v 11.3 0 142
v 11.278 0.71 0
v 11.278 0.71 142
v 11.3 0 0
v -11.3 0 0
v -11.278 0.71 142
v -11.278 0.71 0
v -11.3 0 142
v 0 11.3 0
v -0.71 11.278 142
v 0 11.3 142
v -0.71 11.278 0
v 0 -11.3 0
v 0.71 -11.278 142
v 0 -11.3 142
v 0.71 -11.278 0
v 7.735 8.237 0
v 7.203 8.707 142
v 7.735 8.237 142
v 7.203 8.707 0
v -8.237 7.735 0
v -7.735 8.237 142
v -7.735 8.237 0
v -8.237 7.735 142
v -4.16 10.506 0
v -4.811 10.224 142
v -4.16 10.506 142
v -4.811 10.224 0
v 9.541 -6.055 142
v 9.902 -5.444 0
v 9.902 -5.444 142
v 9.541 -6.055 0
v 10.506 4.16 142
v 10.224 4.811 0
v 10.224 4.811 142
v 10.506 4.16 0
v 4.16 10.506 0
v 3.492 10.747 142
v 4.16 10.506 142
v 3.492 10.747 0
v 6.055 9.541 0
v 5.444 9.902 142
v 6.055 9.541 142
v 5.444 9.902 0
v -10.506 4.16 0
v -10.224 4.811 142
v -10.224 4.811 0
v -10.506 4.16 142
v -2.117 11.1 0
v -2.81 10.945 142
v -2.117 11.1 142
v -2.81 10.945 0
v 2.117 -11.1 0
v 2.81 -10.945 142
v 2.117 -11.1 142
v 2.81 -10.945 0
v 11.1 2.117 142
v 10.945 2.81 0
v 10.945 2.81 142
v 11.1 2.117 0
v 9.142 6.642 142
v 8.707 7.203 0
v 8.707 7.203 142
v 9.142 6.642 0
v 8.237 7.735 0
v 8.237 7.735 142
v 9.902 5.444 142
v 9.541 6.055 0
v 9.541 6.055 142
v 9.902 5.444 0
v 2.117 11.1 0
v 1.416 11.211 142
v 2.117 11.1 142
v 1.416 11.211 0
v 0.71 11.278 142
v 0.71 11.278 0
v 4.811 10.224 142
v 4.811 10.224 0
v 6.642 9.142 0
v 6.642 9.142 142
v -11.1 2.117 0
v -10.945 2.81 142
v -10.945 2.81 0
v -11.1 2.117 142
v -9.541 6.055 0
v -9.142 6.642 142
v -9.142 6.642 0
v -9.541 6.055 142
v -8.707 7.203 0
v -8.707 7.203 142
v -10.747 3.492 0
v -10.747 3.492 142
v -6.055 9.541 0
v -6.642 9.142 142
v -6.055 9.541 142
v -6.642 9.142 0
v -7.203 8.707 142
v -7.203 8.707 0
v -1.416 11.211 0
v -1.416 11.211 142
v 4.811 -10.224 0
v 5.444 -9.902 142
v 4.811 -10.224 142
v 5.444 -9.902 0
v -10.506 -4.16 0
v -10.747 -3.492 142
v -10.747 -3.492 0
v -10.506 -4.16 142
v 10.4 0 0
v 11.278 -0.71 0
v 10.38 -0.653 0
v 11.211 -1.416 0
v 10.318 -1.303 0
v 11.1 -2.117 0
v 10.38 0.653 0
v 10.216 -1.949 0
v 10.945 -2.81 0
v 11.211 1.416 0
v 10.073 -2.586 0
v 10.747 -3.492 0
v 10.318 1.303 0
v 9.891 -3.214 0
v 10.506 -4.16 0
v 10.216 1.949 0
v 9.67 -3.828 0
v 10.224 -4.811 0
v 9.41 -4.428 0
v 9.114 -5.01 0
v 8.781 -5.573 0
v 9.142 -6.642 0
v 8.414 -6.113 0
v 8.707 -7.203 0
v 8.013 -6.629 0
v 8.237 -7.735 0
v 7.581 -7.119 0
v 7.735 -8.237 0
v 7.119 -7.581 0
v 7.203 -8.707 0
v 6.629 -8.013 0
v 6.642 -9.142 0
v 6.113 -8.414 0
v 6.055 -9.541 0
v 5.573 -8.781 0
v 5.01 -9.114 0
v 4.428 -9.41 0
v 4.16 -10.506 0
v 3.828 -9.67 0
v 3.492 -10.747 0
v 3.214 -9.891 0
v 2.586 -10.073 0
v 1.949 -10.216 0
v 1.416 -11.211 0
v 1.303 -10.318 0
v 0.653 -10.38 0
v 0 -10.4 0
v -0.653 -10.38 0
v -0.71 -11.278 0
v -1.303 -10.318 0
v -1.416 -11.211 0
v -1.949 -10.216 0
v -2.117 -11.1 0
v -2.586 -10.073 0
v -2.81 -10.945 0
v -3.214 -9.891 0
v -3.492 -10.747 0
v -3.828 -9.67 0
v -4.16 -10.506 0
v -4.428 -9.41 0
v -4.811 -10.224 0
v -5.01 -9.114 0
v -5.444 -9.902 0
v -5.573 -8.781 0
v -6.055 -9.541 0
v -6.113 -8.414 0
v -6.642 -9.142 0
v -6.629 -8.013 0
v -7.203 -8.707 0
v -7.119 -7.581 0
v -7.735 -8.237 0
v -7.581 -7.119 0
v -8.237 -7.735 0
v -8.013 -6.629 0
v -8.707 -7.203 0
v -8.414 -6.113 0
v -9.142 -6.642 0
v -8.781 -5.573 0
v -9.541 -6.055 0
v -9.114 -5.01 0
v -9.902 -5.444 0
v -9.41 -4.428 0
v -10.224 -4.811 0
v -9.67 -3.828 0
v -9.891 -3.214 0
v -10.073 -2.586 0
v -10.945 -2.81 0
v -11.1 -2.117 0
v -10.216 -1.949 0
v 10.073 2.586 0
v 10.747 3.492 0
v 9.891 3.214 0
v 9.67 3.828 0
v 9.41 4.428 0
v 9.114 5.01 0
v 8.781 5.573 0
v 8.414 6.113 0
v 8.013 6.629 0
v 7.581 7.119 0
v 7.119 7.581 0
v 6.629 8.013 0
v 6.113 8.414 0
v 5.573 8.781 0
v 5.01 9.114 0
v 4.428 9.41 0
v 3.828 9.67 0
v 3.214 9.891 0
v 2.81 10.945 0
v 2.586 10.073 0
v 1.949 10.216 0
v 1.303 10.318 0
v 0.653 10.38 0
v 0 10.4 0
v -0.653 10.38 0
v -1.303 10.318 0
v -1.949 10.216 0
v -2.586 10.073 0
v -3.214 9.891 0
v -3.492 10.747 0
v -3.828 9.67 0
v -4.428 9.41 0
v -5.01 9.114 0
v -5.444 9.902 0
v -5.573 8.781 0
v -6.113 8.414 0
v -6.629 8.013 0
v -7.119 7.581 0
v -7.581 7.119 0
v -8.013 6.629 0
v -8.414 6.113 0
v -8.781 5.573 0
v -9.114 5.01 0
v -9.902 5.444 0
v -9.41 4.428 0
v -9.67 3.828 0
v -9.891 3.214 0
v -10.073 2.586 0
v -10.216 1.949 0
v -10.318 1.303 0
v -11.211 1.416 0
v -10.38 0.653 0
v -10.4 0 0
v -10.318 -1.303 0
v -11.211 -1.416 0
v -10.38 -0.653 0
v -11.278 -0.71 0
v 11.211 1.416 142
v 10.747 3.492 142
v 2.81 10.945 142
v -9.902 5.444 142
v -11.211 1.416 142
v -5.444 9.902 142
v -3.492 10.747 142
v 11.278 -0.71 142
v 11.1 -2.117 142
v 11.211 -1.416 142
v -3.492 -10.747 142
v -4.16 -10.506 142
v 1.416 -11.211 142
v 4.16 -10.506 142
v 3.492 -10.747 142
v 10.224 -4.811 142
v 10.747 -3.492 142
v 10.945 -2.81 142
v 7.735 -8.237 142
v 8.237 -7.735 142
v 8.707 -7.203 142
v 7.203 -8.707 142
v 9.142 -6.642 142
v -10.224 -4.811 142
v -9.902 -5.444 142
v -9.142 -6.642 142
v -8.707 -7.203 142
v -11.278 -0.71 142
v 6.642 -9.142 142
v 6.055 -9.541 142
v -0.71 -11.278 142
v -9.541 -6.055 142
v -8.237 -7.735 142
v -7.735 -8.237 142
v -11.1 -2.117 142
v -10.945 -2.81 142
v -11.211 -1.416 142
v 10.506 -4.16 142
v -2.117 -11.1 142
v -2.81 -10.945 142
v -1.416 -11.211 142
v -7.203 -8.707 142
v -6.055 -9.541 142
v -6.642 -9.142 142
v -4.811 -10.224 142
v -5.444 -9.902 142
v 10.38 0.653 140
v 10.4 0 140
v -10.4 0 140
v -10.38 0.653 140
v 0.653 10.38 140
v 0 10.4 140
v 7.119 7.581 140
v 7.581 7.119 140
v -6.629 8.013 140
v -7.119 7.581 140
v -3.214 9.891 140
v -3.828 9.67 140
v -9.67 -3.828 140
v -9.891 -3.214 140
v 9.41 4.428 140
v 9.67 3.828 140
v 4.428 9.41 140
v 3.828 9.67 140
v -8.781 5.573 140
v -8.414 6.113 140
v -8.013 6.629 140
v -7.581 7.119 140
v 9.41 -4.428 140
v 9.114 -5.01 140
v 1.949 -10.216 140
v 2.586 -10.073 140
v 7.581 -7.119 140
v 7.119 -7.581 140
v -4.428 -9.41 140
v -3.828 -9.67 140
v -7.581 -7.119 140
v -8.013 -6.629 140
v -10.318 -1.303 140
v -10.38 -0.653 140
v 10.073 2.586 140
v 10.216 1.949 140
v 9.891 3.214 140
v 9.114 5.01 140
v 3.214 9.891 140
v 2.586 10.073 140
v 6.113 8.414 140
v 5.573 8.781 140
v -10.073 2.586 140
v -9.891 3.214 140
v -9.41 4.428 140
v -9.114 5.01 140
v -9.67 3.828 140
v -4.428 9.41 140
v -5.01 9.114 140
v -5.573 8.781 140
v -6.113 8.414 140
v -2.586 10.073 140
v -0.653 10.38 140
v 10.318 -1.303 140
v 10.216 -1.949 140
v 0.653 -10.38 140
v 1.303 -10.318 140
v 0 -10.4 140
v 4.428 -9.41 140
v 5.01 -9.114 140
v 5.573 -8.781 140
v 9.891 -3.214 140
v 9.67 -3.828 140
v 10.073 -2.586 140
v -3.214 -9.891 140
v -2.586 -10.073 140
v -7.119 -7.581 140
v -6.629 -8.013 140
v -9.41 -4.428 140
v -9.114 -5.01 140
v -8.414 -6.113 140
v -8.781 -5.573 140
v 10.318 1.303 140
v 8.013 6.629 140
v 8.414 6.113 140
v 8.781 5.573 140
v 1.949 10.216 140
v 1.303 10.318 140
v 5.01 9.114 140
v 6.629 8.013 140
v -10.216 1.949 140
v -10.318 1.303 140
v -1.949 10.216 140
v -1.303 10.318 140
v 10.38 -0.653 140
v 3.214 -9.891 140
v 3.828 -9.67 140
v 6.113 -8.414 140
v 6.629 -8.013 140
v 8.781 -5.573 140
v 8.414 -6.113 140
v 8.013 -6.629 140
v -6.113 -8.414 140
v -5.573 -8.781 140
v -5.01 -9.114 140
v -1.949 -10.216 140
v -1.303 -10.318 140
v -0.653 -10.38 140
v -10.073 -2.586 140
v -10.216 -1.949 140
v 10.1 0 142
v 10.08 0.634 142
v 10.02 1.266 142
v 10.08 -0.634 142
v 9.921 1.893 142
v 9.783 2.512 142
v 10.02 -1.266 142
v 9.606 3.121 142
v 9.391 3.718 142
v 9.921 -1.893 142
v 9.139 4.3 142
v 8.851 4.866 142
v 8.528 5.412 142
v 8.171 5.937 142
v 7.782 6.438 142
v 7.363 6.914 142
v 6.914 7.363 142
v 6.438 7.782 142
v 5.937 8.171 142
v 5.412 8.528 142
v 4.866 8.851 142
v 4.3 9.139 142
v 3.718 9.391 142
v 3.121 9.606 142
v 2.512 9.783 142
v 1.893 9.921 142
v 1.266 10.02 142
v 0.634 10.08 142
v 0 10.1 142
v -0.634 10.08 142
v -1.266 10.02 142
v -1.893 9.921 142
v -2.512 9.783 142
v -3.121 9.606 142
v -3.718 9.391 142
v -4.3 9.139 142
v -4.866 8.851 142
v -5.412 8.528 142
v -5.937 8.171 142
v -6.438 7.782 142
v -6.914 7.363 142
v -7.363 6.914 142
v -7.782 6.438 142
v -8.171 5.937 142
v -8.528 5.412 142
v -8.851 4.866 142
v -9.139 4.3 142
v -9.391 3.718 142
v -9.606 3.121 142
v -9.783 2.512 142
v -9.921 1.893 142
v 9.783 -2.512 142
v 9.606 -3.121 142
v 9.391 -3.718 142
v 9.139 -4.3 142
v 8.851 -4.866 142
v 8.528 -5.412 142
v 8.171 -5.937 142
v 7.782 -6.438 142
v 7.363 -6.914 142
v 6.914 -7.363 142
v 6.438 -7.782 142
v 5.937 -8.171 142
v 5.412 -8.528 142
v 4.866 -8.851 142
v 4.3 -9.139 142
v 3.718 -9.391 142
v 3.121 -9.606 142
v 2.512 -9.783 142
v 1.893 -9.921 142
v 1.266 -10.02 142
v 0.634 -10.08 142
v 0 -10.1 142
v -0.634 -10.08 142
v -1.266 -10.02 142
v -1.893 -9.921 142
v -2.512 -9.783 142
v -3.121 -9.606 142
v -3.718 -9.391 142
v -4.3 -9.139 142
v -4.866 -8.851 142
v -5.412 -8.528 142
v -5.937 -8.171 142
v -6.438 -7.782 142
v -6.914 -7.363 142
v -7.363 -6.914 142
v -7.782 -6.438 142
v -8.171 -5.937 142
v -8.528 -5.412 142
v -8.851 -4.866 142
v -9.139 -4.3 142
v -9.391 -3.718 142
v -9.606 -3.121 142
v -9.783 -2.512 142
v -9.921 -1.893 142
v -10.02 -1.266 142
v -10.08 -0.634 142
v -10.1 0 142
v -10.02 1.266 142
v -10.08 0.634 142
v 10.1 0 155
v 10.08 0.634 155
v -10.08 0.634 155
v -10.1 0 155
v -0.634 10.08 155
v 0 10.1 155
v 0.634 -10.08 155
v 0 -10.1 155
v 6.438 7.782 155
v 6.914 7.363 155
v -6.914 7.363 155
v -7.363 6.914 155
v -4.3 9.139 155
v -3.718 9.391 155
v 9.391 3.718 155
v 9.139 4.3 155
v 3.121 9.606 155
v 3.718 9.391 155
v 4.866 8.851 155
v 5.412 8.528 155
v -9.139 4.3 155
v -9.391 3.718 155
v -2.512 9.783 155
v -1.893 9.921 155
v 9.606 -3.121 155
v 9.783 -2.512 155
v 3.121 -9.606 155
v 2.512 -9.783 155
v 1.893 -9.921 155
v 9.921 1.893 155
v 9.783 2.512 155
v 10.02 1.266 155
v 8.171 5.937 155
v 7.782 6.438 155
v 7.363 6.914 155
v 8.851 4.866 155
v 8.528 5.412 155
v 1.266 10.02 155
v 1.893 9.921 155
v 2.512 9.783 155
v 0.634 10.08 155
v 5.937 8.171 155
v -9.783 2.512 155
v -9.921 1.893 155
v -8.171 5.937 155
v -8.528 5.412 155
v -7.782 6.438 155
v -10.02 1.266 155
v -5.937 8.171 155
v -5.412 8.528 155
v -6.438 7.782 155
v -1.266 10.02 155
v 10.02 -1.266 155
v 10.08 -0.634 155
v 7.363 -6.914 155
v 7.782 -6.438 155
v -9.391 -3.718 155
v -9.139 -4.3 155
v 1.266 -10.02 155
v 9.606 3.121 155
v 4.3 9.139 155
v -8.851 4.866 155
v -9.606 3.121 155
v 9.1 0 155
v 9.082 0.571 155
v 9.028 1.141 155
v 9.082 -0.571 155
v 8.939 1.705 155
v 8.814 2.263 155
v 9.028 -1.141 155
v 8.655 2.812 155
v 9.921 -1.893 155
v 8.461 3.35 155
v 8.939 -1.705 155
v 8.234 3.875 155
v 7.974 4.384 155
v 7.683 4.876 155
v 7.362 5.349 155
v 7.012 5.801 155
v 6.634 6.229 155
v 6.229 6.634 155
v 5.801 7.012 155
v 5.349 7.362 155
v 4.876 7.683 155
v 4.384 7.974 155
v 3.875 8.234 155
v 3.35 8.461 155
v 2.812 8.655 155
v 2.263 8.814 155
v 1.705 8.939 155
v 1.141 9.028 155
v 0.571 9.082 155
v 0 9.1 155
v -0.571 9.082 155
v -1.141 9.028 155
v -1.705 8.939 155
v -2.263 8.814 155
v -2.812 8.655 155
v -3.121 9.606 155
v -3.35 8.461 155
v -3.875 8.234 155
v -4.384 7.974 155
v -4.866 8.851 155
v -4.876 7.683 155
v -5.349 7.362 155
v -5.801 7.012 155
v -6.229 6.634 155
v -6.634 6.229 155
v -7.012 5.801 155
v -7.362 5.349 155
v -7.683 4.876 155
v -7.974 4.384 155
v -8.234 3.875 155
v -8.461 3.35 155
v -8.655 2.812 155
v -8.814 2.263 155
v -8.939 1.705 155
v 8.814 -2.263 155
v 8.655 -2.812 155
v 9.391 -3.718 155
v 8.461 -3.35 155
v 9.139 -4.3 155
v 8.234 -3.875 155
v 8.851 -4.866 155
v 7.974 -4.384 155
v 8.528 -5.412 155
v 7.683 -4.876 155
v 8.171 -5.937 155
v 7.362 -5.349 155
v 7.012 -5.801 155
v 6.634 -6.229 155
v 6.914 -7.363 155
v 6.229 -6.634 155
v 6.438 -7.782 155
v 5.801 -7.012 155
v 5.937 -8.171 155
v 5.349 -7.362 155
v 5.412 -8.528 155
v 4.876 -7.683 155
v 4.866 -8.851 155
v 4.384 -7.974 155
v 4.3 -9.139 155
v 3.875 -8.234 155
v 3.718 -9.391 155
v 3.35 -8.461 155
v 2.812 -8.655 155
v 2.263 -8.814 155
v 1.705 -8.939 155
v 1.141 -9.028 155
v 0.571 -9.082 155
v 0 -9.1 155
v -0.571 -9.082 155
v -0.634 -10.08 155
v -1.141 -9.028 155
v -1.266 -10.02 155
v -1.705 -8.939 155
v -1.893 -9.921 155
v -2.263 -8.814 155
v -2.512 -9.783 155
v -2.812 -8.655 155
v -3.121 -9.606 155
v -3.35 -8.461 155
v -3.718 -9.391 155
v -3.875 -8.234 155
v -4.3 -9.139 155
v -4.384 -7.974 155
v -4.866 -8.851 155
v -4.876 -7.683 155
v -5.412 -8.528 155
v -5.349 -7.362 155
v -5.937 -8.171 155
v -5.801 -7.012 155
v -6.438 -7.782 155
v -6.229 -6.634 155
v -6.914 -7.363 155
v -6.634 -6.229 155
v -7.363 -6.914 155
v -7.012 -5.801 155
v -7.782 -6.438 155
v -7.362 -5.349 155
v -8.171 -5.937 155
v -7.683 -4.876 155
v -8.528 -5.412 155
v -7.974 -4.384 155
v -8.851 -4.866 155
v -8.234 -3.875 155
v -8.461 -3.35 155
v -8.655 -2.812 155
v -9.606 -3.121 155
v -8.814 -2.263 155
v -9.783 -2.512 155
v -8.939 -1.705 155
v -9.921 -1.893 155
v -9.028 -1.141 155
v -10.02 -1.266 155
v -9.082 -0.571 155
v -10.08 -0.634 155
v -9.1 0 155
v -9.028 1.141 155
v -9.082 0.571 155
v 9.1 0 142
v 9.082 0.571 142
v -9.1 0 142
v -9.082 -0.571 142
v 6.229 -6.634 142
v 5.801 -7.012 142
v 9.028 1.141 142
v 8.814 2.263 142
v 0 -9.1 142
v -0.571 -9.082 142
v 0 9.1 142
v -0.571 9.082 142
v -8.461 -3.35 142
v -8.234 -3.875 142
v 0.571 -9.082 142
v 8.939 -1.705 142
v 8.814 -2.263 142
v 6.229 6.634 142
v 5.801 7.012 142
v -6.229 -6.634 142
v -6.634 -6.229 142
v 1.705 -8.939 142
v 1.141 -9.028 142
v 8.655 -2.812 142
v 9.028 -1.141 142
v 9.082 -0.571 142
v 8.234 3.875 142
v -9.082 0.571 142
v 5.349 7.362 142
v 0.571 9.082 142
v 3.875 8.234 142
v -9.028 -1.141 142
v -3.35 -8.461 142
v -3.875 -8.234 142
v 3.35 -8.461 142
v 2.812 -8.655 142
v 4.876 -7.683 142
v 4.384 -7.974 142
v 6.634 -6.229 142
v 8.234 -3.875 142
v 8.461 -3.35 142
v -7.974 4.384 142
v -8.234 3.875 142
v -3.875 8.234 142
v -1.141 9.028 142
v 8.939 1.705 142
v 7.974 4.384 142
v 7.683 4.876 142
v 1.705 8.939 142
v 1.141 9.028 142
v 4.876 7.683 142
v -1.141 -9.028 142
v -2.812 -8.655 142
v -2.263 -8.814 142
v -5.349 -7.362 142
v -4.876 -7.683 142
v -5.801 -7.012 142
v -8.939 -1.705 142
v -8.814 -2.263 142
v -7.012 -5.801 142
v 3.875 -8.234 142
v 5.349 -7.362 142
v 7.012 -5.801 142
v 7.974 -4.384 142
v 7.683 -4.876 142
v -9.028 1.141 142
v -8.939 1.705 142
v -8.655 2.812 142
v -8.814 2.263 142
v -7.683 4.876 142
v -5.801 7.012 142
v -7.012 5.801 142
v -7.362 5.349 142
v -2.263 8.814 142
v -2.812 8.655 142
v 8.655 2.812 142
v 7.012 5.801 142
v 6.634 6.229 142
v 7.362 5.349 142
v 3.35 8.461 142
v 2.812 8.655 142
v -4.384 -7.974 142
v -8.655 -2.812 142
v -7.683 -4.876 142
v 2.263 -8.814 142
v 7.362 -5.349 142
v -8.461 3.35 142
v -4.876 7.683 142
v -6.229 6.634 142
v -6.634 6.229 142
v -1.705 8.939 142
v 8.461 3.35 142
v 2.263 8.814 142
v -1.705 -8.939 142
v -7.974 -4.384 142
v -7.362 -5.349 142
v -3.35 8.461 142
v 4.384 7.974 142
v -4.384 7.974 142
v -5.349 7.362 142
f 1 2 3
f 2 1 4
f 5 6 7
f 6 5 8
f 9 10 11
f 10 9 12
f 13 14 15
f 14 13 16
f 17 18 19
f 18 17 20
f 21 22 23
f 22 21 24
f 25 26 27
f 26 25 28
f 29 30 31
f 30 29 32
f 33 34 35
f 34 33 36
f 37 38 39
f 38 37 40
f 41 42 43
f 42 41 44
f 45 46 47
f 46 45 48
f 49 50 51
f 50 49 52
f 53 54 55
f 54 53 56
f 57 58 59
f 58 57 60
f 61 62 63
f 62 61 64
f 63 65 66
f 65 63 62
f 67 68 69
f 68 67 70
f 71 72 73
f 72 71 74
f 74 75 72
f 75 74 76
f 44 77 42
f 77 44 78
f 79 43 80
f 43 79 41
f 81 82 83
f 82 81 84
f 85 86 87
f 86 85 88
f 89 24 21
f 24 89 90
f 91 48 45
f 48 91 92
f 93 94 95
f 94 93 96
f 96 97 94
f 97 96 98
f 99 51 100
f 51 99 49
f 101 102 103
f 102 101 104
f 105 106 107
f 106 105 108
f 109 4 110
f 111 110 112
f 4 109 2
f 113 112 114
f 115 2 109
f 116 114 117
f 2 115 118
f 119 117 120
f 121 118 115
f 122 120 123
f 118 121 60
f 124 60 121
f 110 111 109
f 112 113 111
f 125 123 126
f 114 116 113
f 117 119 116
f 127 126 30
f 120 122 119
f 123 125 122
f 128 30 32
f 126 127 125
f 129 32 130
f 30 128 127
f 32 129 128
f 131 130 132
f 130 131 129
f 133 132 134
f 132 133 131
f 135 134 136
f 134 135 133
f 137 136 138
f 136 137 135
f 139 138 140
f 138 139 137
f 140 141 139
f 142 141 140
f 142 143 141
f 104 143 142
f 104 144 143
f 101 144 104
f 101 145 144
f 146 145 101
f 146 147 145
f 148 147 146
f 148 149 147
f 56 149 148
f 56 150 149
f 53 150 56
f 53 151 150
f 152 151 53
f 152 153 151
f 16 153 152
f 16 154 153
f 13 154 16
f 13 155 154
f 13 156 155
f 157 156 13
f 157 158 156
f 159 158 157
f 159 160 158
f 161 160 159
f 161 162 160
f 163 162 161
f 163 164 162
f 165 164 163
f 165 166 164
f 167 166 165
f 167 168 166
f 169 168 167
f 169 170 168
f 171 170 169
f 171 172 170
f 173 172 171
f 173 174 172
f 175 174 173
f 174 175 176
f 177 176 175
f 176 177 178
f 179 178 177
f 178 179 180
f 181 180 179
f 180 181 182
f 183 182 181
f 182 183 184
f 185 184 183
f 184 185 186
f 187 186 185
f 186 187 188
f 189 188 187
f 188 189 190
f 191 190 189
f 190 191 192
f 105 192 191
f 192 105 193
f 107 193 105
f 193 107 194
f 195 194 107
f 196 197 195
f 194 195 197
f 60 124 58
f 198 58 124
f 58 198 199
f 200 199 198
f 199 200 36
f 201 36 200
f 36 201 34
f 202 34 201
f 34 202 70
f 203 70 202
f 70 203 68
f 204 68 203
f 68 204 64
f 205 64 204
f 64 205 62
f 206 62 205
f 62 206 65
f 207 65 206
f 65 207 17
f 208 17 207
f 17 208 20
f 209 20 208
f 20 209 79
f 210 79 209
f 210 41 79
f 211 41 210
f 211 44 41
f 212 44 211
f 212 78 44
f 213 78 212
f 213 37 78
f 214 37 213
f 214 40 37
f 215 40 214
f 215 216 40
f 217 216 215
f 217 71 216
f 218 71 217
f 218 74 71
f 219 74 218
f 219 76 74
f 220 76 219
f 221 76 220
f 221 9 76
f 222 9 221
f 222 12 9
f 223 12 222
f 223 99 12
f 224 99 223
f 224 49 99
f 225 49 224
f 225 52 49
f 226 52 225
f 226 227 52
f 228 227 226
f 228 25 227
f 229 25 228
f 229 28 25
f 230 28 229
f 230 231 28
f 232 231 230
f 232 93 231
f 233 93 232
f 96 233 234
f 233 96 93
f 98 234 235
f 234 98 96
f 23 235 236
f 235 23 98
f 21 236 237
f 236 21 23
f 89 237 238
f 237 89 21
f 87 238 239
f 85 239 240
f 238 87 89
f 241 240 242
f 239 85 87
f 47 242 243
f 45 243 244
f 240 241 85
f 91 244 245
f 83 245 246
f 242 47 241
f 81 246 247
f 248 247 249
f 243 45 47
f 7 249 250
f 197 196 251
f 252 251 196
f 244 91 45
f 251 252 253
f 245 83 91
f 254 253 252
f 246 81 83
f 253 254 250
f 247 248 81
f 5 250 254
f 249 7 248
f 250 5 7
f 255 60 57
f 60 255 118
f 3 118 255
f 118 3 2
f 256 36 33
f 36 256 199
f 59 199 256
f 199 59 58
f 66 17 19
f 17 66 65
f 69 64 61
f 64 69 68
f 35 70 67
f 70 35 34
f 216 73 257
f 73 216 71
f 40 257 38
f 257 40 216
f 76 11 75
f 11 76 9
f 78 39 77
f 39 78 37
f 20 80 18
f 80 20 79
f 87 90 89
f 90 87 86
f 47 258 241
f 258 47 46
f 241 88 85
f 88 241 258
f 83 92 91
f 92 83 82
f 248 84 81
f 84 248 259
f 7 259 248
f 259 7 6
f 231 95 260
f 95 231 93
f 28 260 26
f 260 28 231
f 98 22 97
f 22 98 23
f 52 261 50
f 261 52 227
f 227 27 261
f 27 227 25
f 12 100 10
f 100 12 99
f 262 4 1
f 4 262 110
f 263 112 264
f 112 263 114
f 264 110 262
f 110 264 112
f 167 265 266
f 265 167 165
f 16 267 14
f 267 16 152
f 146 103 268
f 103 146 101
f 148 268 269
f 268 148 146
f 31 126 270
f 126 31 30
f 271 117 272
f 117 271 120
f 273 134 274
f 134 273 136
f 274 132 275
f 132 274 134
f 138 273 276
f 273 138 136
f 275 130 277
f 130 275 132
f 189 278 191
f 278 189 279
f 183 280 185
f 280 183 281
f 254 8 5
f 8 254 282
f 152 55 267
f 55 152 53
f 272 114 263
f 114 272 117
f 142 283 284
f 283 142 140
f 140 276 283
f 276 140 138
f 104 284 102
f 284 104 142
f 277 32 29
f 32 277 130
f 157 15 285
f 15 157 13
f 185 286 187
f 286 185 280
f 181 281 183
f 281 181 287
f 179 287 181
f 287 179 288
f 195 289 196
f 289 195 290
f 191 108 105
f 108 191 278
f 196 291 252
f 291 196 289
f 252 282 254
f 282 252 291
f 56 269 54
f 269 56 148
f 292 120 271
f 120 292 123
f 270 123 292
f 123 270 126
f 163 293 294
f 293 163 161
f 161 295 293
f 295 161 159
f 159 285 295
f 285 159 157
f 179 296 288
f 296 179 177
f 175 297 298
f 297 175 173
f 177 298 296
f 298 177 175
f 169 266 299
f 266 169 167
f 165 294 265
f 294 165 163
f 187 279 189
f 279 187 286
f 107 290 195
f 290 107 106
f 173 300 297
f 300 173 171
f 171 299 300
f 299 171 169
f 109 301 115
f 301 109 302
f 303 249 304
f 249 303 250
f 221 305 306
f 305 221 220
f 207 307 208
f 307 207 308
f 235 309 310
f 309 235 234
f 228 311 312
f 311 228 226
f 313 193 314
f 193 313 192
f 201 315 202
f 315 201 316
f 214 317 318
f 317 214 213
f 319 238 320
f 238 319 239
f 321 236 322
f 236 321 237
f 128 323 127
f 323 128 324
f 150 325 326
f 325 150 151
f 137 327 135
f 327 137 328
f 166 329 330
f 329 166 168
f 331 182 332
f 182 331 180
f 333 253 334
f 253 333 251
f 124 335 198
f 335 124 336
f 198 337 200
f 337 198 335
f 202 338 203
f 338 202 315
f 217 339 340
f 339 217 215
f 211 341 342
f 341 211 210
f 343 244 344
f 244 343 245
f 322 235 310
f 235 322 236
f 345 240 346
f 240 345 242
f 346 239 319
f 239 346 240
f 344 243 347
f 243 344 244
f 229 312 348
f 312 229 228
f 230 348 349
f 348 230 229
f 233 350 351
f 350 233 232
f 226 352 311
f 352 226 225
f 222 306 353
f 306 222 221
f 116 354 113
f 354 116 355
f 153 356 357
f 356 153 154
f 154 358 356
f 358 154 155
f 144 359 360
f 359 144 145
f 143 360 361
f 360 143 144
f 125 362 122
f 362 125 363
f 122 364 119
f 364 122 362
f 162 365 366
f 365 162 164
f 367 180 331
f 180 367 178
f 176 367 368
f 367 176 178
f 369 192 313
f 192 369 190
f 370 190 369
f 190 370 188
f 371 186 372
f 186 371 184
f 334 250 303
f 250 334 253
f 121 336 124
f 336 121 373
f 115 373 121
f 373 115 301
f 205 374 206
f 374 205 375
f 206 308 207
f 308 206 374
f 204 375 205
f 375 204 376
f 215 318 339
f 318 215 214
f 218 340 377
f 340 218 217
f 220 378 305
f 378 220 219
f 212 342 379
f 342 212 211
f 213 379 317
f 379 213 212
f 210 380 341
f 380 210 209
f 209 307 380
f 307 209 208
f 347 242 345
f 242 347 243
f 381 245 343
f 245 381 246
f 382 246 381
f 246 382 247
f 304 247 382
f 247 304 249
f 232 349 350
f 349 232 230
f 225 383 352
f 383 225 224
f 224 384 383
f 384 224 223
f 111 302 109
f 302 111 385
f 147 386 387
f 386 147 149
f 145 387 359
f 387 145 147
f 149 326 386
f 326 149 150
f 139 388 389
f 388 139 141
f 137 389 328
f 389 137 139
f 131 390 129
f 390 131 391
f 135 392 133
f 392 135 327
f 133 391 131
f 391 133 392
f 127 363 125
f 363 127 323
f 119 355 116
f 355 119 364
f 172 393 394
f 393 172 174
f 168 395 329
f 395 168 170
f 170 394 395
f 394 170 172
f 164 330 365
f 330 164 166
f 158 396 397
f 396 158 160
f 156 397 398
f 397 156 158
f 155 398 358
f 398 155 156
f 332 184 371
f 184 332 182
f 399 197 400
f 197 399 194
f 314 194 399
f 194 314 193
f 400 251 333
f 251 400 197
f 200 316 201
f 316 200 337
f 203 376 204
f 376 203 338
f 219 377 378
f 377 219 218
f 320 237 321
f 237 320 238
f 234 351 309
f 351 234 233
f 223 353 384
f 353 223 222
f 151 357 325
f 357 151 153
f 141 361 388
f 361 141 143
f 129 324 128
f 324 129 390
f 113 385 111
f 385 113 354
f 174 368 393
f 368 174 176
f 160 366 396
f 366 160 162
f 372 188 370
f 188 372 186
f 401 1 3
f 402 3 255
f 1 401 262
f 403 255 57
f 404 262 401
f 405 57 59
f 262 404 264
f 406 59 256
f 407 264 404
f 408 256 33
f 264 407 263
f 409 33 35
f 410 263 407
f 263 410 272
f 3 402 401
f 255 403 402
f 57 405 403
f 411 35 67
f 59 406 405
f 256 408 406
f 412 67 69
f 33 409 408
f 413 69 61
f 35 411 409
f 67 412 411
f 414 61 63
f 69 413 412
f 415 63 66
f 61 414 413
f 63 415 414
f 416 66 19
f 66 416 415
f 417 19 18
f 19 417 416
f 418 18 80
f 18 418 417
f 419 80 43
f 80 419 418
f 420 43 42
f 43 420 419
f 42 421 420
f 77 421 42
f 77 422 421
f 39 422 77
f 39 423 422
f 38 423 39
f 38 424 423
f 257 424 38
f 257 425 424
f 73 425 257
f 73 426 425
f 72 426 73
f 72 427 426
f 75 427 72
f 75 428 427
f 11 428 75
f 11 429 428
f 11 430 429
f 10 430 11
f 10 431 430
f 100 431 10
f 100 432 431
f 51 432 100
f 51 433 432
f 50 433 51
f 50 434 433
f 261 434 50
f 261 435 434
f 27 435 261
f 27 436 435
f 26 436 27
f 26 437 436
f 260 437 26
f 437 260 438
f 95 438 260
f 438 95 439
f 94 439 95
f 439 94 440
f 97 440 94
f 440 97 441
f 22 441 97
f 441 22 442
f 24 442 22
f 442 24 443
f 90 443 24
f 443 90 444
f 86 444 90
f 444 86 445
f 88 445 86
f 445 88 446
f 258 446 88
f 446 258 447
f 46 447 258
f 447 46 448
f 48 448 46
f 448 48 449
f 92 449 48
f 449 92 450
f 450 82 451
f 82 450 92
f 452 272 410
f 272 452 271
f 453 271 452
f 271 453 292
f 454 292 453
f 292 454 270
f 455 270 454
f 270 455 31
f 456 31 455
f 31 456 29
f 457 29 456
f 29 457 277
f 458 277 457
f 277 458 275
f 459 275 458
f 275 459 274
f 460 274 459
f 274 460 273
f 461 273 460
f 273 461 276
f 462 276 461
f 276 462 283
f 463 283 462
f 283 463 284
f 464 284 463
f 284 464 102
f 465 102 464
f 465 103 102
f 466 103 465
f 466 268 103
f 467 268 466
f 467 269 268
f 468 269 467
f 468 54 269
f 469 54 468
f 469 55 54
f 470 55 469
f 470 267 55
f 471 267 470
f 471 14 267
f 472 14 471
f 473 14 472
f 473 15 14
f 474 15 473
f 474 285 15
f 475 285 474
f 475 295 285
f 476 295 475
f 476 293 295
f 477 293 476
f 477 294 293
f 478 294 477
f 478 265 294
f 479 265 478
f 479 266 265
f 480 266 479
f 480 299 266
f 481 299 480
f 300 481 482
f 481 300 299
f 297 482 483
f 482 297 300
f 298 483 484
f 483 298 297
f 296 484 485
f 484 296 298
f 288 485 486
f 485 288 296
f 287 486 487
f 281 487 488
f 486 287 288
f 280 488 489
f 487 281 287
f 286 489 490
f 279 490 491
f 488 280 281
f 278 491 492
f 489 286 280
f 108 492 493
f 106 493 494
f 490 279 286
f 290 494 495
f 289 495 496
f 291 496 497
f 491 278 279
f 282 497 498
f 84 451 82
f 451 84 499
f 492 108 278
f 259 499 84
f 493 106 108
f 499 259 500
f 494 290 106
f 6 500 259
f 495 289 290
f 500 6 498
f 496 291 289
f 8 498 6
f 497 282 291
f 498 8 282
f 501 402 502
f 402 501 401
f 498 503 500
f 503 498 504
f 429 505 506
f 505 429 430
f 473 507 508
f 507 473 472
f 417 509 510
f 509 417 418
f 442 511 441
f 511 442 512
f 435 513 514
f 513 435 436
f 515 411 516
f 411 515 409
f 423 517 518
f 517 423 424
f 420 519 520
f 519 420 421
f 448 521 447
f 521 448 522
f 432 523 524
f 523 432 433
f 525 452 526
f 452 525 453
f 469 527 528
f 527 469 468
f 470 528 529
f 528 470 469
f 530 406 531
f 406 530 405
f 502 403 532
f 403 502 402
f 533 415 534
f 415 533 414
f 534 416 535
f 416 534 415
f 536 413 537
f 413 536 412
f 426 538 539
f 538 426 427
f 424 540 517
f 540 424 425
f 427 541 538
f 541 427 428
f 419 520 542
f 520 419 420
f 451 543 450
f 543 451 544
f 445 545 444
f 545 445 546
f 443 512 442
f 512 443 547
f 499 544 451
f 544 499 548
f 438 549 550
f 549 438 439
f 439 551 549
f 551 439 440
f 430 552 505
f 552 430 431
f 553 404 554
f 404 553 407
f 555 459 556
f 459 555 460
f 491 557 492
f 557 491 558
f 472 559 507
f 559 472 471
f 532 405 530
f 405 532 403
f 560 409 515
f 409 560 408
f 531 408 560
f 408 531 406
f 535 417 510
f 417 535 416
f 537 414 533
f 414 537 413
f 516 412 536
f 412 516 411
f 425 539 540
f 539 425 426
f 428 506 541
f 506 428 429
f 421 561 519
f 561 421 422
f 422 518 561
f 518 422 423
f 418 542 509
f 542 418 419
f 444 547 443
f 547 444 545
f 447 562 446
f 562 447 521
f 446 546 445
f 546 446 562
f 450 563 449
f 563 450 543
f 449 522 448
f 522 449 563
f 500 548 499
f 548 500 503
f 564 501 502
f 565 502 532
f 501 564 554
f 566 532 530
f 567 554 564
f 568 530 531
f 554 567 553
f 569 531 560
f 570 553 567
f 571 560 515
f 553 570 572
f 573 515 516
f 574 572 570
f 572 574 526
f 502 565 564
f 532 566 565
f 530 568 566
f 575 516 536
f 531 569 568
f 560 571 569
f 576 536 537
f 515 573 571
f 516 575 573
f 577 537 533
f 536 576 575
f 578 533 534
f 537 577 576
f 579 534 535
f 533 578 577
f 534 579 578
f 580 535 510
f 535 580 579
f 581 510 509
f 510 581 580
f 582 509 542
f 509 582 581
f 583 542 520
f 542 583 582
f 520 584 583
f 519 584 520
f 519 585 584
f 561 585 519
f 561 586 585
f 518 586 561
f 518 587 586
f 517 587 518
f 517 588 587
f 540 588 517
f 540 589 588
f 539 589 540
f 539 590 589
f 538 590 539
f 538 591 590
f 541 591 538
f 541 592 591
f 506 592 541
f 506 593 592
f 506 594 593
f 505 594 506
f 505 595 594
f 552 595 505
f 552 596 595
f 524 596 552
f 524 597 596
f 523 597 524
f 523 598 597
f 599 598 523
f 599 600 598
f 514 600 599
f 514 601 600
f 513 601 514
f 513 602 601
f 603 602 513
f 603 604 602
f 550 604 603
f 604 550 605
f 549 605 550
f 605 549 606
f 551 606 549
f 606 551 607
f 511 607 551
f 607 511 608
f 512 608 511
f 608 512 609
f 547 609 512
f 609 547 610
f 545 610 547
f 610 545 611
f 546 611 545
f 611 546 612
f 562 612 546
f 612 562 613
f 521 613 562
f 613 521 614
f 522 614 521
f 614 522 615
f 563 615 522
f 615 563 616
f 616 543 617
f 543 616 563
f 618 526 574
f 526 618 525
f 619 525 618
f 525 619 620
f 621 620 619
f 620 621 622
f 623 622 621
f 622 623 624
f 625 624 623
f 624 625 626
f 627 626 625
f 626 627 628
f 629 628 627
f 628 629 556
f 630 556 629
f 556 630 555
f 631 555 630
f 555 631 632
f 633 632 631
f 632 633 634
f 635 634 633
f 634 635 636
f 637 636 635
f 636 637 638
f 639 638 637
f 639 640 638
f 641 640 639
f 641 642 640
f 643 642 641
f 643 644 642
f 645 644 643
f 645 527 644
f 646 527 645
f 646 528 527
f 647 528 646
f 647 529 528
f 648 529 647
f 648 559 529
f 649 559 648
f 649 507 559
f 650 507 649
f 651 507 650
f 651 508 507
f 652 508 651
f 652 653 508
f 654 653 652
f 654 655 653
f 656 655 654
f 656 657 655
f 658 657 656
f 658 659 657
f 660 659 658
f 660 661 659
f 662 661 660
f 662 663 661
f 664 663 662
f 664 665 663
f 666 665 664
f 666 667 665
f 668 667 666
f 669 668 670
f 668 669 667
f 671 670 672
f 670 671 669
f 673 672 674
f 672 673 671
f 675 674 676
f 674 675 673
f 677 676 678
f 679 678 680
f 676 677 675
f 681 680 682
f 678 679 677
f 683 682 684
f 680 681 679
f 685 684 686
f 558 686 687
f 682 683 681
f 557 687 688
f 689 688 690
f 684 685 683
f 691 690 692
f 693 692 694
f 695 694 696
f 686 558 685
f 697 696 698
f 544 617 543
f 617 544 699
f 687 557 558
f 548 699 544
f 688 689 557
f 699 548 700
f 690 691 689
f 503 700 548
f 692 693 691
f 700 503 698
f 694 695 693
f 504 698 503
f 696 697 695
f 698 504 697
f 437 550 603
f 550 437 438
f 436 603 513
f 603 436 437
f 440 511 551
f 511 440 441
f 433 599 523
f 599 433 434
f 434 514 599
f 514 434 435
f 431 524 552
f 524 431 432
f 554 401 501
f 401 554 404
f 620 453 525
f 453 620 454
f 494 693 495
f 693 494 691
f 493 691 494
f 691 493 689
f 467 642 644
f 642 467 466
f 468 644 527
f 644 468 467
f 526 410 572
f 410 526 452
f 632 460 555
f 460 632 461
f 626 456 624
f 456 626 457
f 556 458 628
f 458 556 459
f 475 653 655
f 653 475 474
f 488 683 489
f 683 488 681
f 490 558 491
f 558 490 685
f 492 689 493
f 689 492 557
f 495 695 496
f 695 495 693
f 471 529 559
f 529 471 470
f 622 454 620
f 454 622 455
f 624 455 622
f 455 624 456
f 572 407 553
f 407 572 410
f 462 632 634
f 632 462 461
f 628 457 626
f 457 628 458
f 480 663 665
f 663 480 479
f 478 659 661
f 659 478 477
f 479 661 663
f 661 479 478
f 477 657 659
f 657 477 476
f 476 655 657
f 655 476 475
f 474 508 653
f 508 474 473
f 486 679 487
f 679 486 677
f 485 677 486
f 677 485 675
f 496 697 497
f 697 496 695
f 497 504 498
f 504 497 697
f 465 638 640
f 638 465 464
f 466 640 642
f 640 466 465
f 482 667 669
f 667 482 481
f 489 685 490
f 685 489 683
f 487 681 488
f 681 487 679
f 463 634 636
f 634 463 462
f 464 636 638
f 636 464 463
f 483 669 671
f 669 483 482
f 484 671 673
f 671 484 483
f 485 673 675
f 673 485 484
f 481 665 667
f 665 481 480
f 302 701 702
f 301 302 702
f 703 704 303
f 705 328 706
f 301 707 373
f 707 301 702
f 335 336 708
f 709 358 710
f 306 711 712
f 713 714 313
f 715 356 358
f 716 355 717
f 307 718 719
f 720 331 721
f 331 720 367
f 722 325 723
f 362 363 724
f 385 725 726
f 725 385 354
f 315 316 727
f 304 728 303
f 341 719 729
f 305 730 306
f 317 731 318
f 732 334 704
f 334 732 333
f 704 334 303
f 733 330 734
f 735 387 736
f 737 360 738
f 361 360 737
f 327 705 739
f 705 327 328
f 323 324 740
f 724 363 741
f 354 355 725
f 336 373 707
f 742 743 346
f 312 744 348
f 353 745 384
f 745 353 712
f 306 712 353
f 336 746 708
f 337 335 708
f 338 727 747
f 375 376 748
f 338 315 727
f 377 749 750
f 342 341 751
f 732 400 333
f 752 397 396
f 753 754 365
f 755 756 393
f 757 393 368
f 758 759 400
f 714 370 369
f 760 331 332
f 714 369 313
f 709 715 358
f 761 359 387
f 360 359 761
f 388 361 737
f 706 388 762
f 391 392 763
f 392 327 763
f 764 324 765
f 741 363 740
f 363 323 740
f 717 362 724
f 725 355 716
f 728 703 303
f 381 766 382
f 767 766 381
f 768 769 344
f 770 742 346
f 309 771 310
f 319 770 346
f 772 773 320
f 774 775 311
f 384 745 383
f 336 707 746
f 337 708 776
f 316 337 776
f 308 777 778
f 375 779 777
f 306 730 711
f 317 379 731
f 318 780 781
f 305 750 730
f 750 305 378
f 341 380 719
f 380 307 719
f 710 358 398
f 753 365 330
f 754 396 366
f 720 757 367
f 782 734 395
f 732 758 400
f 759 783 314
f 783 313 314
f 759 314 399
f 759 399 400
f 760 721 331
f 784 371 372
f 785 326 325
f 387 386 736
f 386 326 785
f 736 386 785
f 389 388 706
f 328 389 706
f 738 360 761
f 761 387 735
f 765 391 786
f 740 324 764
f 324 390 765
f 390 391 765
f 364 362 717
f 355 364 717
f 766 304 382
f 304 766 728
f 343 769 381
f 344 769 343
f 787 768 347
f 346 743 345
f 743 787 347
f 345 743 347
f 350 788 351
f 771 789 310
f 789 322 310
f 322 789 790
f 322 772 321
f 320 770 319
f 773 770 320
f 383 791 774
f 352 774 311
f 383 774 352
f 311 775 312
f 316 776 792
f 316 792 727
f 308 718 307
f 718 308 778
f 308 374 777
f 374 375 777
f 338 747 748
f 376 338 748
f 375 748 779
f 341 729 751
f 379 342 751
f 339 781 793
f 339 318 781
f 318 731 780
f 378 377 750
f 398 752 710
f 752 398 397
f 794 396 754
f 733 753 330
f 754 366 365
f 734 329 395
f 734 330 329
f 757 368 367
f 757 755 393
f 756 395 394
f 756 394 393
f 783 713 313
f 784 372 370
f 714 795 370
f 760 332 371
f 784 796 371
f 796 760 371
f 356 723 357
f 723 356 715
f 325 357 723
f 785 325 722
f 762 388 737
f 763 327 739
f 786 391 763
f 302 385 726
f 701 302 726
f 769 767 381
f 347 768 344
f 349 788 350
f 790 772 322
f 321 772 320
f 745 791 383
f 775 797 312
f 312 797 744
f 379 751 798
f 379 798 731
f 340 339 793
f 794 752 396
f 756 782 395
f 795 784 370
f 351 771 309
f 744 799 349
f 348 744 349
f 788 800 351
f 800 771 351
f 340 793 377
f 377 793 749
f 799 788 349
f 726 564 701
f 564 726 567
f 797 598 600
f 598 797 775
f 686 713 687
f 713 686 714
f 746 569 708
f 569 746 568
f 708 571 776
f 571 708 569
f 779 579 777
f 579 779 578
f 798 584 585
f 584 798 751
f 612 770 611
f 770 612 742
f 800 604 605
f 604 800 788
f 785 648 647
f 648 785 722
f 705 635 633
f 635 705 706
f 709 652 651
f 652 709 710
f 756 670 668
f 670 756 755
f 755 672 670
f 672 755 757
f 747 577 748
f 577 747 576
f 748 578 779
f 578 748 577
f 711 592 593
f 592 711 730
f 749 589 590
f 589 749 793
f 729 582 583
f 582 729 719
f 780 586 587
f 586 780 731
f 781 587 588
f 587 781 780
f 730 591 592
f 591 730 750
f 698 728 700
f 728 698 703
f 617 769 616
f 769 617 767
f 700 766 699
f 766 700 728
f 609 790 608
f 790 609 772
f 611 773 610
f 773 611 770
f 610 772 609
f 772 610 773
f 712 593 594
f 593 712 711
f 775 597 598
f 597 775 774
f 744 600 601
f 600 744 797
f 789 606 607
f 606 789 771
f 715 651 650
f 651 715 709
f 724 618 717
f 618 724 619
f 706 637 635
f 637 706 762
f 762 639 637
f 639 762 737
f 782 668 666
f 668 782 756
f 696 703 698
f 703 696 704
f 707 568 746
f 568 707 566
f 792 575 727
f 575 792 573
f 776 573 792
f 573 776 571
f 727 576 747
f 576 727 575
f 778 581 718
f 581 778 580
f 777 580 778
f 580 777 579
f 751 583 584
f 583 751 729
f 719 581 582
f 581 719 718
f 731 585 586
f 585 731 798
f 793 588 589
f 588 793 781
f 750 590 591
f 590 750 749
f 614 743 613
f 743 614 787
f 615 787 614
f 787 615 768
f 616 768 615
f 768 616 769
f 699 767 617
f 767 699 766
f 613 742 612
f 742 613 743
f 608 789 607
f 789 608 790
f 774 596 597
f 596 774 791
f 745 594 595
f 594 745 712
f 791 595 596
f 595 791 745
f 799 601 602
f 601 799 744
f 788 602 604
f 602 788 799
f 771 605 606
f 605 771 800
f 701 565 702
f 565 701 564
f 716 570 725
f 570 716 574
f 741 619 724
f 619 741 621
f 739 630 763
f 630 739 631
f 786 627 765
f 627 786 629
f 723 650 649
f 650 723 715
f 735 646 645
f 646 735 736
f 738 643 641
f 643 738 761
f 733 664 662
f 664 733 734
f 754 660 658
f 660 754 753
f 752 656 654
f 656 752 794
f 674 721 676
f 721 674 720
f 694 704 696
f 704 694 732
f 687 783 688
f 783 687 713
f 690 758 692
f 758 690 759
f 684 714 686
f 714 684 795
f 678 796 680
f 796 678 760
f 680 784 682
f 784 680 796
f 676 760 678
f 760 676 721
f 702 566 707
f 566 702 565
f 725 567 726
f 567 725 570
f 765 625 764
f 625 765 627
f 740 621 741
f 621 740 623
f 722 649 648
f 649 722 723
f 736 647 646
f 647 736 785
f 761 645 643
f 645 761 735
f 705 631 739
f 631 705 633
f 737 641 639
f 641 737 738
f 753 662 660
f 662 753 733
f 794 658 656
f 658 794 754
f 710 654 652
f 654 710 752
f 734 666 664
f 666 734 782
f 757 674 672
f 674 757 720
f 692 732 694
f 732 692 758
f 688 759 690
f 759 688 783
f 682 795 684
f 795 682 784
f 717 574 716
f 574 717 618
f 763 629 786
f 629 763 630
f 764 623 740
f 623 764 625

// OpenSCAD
// file: lib/joint.scad
include <../../config.scad>

module joint() {
    difference() {
        union() {
            cylinder(d=outer_diameter, h=joint_transition_height, $fn=100);

            translate([0, 0, joint_transition_height])
                cylinder(d=outer_diameter-wall_thickness*2-joint_space*2, h=joint_height, $fn=100);
        }

        cylinder(d1=outer_diameter-wall_thickness*2, d2=outer_diameter-wall_thickness*2-joint_space*2-joint_thickness*2, h=joint_transition_height, $fn=100);

        cylinder(d=outer_diameter-wall_thickness*2-joint_space*2-joint_thickness*2, h=joint_height+0.1+joint_transition_height, $fn=100);
    }
}

joint();
// file: ../config.scad
//========== ROCKET PARAMETERS ==========//

//rocket
wall_thickness = 0.9;
motorwall_thickness = 2;
module_height = 140;


//liftoff_ring
liftoff_ring = true;
ring_diameter = 4.2;
ring_thickness = 1;
ring_height = 10;
ring_translate_angle = 11.9;

//stabilizer
stabilizer_thickness = 0.8;
stabilizer_count = 3;
stabilizer_height = 60;
stabilizer_width = 30;
stabilizer_angle = 50;

//motor
motor_diameter = 18.6;
motor_height = 70;

//joint
joint_height = 13;
joint_space = 0.3;
joint_thickness = 1;
joint_transition_height = 2;

//container
container_diameter = 25;
container_height = 50;
container_transition = 10;
hole_diameter = 2;

//nosecone
cone_height = 50;

//parachute ring
parachute_ring_diameter = 12;
parachute_ring_thickness = 2;
parachute_ring_hole_count = 6;
parachute_ring_hole_distance = 1;
parachute_ring_hole_diameter = 1.5;

outer_diameter = motor_diameter+motorwall_thickness*2;

//========== LAUNCHPAD PARAMETERS ==========//

//launchpad
launch_rod_diameter = 1.5;
launch_rod_height = 250;
launchpad_width = 120;
launchpad_deepth = 120;
launchpad_height = 40;
launchpad_fire_hole = 20;
// main file
include <../config.scad>
use <lib/joint.scad>

module hull() {
    difference() {
        cylinder(d=outer_diameter, h=module_height, $fn=100);
        translate([0, 0, -0.1])
            cylinder(d=outer_diameter-wall_thickness*2, h=module_height+0.1, $fn=100);
    }
    translate([0, 0, module_height])
        joint();

}

hull();
